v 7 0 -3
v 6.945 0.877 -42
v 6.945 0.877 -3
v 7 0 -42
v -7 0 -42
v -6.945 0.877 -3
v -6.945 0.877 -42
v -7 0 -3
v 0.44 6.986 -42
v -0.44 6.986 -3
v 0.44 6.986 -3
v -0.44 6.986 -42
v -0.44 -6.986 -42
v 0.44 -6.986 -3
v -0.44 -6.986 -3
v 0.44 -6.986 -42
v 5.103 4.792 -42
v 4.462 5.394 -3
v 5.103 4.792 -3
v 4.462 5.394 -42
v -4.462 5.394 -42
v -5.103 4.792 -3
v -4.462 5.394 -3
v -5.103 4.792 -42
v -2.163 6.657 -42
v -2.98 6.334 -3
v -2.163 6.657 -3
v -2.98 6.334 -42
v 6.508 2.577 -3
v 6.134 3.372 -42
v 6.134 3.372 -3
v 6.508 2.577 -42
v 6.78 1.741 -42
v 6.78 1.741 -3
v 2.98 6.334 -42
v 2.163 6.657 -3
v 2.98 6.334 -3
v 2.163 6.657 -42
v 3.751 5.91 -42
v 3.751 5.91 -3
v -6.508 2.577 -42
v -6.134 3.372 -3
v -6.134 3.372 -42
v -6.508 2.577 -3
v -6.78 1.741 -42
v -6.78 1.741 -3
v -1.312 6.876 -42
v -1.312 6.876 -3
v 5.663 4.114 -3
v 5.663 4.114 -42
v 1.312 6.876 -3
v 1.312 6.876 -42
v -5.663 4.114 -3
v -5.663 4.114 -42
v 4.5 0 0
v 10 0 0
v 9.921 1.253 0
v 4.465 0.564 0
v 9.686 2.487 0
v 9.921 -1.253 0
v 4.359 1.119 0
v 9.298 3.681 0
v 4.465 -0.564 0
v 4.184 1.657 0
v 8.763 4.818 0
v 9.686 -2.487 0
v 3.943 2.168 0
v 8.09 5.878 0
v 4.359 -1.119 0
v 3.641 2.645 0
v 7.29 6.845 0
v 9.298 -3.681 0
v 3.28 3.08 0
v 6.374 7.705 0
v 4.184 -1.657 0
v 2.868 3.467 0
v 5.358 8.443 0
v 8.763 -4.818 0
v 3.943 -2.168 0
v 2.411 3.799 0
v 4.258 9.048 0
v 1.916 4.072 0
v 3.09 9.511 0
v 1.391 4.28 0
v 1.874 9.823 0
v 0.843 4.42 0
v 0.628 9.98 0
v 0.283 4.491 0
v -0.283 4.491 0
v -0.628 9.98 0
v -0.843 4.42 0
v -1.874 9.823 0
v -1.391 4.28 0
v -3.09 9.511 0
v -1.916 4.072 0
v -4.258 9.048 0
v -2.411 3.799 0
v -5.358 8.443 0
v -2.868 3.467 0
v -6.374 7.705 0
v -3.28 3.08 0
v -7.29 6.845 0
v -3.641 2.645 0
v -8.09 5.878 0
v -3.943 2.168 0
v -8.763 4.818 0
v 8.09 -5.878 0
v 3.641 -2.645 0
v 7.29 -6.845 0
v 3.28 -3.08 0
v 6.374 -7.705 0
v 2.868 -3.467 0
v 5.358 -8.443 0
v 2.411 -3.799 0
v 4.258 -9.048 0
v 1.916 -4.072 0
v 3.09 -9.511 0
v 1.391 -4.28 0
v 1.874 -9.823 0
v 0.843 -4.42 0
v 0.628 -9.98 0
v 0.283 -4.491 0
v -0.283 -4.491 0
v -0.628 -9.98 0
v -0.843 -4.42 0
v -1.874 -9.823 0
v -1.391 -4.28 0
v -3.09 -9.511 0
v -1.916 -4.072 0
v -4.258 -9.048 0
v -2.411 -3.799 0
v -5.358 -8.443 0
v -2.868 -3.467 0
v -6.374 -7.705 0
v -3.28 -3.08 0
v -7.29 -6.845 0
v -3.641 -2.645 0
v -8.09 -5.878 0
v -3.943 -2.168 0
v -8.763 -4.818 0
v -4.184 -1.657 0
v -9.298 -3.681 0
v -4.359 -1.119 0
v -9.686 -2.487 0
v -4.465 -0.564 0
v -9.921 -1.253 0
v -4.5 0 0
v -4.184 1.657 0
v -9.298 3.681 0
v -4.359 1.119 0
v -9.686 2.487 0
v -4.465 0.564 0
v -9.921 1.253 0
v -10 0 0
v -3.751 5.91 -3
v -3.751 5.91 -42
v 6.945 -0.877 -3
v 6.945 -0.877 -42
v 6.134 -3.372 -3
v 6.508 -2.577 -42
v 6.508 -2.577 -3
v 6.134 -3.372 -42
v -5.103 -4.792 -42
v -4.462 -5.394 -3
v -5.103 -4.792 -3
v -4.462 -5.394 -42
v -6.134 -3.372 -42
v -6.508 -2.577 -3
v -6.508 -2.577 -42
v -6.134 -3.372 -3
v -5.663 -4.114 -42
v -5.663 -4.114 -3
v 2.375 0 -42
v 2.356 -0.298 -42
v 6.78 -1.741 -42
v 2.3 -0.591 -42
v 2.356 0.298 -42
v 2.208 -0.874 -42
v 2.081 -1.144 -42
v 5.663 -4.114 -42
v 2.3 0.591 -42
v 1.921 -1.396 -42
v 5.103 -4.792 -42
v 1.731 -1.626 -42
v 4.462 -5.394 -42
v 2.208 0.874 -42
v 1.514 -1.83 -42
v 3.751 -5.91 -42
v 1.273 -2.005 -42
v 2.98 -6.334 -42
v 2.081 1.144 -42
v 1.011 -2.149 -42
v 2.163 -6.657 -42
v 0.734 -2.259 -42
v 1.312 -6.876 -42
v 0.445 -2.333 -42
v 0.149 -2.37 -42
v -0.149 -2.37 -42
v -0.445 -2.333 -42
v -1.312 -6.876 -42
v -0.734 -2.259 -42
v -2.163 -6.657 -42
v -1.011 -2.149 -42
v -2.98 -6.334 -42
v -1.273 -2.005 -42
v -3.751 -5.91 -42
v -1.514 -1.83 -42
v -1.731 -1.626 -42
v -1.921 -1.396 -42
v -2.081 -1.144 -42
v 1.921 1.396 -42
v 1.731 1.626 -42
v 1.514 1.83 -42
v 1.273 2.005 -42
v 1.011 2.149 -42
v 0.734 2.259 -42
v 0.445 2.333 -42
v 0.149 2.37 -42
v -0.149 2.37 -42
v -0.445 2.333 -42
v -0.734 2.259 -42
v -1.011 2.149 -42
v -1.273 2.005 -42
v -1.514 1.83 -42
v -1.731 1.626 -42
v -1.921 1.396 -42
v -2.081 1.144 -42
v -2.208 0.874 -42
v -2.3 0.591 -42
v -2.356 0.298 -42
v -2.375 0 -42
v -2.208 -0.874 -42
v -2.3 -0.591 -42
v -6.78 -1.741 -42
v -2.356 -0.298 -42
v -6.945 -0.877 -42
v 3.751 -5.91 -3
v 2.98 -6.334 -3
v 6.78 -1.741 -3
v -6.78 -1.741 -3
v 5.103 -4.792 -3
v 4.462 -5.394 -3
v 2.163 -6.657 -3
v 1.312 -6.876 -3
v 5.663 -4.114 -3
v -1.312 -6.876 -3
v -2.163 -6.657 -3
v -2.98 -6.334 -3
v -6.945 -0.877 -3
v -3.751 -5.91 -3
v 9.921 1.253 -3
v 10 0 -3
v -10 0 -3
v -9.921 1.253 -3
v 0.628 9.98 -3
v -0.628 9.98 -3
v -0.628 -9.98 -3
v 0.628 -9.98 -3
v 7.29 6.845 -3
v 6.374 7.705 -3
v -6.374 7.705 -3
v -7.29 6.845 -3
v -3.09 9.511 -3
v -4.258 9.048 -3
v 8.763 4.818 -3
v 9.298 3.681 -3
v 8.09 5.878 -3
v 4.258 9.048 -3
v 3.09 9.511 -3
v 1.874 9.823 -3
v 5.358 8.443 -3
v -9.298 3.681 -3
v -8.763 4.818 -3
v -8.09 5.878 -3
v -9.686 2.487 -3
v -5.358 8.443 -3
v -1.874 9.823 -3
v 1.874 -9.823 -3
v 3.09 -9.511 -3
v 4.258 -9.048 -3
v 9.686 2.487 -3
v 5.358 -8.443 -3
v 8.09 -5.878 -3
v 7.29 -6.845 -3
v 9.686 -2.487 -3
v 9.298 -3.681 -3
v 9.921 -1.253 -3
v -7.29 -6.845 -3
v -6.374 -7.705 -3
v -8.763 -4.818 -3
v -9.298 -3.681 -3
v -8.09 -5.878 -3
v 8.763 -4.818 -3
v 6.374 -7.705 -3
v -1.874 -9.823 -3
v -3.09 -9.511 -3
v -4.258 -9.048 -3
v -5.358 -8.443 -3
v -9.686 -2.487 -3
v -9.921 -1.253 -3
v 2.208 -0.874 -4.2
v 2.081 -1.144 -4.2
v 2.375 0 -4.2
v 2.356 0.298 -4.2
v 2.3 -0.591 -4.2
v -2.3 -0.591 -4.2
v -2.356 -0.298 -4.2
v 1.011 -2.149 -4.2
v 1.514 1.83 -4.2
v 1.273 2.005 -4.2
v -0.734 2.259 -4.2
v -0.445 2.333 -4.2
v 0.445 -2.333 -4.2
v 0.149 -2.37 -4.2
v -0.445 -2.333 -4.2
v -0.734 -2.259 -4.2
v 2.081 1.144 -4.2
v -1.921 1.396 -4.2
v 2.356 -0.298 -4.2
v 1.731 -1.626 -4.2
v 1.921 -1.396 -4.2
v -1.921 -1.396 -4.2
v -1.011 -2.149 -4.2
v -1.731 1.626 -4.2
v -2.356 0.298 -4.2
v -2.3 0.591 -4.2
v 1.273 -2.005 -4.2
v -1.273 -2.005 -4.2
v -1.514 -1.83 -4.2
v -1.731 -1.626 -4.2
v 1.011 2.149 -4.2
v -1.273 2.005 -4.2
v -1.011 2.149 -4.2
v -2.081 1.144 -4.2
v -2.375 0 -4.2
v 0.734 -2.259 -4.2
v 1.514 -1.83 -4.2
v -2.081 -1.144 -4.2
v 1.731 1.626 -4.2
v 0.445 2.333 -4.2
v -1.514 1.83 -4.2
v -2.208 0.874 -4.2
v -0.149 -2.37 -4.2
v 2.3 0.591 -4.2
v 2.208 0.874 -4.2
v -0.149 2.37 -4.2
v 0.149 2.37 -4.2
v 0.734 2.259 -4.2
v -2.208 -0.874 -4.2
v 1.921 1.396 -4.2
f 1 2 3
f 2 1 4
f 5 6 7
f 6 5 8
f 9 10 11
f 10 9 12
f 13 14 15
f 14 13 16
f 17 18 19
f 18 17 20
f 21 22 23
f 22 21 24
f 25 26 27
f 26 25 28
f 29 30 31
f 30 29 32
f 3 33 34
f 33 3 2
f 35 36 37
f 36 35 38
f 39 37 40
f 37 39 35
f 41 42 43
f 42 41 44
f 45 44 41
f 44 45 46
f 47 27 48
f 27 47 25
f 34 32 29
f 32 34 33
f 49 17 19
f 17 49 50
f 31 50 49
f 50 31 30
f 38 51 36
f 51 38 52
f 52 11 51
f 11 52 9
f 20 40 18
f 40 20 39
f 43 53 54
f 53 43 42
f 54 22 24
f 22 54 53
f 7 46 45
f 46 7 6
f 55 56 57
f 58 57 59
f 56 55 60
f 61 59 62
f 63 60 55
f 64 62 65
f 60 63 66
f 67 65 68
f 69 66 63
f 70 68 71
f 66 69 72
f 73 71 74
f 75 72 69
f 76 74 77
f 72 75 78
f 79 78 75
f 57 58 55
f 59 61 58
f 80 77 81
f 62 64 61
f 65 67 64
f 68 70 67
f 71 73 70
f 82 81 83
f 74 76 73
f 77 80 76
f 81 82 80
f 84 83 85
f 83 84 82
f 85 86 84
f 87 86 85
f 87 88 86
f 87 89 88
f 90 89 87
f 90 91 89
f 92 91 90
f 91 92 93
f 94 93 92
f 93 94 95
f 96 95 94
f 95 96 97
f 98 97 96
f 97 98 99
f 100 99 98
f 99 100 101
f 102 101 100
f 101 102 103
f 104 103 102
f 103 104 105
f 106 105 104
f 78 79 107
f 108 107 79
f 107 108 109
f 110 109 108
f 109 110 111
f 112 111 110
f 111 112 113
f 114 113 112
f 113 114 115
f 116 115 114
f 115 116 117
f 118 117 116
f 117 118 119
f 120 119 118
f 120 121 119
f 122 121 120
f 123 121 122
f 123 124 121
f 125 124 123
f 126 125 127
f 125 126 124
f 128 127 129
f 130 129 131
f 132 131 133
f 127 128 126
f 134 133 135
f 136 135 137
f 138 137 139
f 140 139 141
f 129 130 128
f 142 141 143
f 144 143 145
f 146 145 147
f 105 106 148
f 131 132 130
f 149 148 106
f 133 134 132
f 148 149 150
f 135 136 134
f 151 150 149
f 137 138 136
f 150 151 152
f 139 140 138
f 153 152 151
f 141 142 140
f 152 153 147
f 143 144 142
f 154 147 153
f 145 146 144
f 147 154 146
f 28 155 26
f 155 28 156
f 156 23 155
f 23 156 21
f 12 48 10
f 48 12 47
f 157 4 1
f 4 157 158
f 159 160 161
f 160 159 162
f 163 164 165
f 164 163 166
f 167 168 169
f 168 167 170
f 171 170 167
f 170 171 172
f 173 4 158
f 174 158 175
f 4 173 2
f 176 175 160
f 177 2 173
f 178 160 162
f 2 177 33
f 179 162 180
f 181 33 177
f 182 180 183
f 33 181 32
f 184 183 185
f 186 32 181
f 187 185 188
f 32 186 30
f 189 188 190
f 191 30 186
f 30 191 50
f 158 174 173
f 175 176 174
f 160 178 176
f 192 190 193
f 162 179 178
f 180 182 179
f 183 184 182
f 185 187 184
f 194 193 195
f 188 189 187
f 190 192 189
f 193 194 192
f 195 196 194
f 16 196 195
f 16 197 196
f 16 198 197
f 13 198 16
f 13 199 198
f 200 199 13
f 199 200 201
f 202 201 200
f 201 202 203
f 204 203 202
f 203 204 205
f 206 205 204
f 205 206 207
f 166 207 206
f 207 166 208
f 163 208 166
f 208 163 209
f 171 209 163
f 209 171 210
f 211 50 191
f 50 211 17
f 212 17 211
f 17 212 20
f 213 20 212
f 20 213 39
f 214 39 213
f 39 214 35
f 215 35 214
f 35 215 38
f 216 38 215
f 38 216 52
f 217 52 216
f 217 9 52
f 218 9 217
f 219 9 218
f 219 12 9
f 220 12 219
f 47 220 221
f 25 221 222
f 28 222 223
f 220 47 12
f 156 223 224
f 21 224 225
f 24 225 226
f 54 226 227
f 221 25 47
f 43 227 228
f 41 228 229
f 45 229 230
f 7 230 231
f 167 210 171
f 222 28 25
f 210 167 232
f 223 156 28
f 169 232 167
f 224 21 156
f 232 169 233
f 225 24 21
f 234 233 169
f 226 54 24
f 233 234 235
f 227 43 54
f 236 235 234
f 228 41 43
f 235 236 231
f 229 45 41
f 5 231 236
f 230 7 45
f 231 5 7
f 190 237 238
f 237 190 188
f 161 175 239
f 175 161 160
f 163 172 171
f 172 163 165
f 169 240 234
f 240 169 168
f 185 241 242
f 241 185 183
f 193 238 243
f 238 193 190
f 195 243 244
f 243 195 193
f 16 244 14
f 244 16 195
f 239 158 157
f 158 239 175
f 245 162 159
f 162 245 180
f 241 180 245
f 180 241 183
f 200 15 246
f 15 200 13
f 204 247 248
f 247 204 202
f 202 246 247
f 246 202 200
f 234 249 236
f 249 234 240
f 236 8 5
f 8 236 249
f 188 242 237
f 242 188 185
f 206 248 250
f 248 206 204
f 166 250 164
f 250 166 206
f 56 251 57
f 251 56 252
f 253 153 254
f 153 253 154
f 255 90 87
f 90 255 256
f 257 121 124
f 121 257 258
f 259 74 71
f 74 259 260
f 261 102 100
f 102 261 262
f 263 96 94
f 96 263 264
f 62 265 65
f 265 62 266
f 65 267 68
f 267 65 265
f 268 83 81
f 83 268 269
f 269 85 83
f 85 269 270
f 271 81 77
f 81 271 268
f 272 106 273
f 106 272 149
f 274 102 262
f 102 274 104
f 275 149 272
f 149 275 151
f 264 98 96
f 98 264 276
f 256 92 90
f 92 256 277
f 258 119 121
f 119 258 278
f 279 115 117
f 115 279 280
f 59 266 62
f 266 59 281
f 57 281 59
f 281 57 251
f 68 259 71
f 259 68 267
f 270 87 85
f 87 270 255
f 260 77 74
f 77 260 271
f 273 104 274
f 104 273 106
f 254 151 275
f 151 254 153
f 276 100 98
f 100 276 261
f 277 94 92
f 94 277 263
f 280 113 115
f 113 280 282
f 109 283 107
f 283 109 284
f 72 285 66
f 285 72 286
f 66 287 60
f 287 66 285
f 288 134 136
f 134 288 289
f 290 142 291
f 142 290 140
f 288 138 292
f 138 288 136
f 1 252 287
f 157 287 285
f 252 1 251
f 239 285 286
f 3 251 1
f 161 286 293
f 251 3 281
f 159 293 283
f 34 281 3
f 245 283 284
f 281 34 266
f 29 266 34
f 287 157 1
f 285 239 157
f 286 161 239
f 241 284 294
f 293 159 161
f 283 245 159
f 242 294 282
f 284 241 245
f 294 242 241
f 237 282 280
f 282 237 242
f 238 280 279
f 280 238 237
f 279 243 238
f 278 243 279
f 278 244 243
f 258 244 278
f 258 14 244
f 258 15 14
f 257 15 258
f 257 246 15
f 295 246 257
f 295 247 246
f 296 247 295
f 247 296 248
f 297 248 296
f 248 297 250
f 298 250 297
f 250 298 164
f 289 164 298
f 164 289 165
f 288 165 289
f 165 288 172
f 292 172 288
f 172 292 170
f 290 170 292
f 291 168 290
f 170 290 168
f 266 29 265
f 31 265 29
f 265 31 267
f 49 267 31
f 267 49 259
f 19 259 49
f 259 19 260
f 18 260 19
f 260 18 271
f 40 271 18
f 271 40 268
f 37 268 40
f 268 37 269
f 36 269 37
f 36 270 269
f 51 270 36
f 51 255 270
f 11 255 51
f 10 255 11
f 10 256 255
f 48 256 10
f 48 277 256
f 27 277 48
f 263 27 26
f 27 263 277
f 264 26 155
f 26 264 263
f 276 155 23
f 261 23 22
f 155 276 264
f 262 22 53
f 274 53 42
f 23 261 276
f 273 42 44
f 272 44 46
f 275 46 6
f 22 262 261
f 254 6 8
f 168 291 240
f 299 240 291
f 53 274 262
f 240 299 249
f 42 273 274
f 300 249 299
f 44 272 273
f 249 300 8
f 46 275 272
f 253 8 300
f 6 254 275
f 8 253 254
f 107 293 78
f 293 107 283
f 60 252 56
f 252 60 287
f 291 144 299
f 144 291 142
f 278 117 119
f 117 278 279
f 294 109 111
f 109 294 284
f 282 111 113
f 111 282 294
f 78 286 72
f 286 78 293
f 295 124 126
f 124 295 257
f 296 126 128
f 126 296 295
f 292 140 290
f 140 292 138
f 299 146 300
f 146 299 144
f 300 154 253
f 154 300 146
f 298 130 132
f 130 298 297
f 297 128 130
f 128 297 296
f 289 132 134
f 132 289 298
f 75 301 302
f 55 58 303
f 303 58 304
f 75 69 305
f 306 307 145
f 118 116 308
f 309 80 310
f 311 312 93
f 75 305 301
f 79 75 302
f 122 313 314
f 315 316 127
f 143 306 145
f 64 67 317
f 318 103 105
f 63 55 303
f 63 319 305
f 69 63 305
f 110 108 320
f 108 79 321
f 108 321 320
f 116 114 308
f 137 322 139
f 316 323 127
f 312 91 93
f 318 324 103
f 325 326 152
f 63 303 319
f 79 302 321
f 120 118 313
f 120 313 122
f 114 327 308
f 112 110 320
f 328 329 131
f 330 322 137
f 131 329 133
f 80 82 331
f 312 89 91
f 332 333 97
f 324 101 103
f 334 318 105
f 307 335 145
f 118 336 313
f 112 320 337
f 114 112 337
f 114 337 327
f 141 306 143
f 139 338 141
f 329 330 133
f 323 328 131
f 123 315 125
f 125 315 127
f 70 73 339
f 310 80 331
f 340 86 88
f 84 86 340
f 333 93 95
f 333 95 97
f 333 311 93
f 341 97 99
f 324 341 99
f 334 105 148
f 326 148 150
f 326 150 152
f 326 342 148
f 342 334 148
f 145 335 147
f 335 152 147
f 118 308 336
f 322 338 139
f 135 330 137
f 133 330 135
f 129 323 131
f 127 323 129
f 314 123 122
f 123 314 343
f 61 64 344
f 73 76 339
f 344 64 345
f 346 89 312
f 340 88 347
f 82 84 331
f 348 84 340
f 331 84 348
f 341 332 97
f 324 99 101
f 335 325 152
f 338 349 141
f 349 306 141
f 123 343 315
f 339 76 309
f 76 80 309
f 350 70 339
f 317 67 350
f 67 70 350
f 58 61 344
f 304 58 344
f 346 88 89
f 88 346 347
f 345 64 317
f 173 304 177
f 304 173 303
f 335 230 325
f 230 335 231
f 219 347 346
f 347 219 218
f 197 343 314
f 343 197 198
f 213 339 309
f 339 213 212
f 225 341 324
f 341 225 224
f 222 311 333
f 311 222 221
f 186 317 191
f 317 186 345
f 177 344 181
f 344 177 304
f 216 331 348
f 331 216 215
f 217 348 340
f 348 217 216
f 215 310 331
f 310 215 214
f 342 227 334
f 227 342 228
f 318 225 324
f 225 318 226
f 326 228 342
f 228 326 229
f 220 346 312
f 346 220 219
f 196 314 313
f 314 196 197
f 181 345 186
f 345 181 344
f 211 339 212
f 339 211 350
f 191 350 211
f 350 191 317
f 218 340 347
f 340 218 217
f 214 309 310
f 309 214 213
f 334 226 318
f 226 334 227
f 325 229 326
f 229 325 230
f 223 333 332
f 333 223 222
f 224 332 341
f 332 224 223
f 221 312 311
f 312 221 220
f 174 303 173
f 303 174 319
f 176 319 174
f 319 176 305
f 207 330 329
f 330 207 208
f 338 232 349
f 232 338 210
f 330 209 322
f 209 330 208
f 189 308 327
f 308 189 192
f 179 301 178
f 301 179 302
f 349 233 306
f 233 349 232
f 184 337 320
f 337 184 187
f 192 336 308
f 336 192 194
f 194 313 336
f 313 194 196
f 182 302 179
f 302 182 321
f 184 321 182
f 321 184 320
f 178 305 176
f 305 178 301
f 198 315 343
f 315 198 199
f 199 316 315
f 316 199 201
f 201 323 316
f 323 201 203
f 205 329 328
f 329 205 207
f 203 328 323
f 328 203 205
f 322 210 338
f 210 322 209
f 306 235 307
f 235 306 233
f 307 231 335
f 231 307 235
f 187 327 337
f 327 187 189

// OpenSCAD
$fn = 50;


difference() {
	union() {
		translate(v = [0, 0, -42.0000000000]) {
			cylinder(h = 42, r = 7.0000000000);
		}
		translate(v = [0, 0, -3.0000000000]) {
			cylinder(h = 3, r = 10.0000000000);
		}
	}
	union() {
		translate(v = [0, 0, 0]) {
			rotate(a = [0, 0, 0]) {
				difference() {
					union() {
						#translate(v = [0, 0, -42.0000000000]) {
							cylinder(h = 42, r = 2.2500000000);
						}
						#translate(v = [0, 0, -4.2000000000]) {
							cylinder(h = 4.2000000000, r1 = 2.3750000000, r2 = 4.5000000000);
						}
						#translate(v = [0, 0, -42.0000000000]) {
							cylinder(h = 42, r = 2.3750000000);
						}
						#translate(v = [0, 0, -42.0000000000]) {
							cylinder(h = 42, r = 2.2500000000);
						}
					}
					union();
				}
			}
		}
	}
}
